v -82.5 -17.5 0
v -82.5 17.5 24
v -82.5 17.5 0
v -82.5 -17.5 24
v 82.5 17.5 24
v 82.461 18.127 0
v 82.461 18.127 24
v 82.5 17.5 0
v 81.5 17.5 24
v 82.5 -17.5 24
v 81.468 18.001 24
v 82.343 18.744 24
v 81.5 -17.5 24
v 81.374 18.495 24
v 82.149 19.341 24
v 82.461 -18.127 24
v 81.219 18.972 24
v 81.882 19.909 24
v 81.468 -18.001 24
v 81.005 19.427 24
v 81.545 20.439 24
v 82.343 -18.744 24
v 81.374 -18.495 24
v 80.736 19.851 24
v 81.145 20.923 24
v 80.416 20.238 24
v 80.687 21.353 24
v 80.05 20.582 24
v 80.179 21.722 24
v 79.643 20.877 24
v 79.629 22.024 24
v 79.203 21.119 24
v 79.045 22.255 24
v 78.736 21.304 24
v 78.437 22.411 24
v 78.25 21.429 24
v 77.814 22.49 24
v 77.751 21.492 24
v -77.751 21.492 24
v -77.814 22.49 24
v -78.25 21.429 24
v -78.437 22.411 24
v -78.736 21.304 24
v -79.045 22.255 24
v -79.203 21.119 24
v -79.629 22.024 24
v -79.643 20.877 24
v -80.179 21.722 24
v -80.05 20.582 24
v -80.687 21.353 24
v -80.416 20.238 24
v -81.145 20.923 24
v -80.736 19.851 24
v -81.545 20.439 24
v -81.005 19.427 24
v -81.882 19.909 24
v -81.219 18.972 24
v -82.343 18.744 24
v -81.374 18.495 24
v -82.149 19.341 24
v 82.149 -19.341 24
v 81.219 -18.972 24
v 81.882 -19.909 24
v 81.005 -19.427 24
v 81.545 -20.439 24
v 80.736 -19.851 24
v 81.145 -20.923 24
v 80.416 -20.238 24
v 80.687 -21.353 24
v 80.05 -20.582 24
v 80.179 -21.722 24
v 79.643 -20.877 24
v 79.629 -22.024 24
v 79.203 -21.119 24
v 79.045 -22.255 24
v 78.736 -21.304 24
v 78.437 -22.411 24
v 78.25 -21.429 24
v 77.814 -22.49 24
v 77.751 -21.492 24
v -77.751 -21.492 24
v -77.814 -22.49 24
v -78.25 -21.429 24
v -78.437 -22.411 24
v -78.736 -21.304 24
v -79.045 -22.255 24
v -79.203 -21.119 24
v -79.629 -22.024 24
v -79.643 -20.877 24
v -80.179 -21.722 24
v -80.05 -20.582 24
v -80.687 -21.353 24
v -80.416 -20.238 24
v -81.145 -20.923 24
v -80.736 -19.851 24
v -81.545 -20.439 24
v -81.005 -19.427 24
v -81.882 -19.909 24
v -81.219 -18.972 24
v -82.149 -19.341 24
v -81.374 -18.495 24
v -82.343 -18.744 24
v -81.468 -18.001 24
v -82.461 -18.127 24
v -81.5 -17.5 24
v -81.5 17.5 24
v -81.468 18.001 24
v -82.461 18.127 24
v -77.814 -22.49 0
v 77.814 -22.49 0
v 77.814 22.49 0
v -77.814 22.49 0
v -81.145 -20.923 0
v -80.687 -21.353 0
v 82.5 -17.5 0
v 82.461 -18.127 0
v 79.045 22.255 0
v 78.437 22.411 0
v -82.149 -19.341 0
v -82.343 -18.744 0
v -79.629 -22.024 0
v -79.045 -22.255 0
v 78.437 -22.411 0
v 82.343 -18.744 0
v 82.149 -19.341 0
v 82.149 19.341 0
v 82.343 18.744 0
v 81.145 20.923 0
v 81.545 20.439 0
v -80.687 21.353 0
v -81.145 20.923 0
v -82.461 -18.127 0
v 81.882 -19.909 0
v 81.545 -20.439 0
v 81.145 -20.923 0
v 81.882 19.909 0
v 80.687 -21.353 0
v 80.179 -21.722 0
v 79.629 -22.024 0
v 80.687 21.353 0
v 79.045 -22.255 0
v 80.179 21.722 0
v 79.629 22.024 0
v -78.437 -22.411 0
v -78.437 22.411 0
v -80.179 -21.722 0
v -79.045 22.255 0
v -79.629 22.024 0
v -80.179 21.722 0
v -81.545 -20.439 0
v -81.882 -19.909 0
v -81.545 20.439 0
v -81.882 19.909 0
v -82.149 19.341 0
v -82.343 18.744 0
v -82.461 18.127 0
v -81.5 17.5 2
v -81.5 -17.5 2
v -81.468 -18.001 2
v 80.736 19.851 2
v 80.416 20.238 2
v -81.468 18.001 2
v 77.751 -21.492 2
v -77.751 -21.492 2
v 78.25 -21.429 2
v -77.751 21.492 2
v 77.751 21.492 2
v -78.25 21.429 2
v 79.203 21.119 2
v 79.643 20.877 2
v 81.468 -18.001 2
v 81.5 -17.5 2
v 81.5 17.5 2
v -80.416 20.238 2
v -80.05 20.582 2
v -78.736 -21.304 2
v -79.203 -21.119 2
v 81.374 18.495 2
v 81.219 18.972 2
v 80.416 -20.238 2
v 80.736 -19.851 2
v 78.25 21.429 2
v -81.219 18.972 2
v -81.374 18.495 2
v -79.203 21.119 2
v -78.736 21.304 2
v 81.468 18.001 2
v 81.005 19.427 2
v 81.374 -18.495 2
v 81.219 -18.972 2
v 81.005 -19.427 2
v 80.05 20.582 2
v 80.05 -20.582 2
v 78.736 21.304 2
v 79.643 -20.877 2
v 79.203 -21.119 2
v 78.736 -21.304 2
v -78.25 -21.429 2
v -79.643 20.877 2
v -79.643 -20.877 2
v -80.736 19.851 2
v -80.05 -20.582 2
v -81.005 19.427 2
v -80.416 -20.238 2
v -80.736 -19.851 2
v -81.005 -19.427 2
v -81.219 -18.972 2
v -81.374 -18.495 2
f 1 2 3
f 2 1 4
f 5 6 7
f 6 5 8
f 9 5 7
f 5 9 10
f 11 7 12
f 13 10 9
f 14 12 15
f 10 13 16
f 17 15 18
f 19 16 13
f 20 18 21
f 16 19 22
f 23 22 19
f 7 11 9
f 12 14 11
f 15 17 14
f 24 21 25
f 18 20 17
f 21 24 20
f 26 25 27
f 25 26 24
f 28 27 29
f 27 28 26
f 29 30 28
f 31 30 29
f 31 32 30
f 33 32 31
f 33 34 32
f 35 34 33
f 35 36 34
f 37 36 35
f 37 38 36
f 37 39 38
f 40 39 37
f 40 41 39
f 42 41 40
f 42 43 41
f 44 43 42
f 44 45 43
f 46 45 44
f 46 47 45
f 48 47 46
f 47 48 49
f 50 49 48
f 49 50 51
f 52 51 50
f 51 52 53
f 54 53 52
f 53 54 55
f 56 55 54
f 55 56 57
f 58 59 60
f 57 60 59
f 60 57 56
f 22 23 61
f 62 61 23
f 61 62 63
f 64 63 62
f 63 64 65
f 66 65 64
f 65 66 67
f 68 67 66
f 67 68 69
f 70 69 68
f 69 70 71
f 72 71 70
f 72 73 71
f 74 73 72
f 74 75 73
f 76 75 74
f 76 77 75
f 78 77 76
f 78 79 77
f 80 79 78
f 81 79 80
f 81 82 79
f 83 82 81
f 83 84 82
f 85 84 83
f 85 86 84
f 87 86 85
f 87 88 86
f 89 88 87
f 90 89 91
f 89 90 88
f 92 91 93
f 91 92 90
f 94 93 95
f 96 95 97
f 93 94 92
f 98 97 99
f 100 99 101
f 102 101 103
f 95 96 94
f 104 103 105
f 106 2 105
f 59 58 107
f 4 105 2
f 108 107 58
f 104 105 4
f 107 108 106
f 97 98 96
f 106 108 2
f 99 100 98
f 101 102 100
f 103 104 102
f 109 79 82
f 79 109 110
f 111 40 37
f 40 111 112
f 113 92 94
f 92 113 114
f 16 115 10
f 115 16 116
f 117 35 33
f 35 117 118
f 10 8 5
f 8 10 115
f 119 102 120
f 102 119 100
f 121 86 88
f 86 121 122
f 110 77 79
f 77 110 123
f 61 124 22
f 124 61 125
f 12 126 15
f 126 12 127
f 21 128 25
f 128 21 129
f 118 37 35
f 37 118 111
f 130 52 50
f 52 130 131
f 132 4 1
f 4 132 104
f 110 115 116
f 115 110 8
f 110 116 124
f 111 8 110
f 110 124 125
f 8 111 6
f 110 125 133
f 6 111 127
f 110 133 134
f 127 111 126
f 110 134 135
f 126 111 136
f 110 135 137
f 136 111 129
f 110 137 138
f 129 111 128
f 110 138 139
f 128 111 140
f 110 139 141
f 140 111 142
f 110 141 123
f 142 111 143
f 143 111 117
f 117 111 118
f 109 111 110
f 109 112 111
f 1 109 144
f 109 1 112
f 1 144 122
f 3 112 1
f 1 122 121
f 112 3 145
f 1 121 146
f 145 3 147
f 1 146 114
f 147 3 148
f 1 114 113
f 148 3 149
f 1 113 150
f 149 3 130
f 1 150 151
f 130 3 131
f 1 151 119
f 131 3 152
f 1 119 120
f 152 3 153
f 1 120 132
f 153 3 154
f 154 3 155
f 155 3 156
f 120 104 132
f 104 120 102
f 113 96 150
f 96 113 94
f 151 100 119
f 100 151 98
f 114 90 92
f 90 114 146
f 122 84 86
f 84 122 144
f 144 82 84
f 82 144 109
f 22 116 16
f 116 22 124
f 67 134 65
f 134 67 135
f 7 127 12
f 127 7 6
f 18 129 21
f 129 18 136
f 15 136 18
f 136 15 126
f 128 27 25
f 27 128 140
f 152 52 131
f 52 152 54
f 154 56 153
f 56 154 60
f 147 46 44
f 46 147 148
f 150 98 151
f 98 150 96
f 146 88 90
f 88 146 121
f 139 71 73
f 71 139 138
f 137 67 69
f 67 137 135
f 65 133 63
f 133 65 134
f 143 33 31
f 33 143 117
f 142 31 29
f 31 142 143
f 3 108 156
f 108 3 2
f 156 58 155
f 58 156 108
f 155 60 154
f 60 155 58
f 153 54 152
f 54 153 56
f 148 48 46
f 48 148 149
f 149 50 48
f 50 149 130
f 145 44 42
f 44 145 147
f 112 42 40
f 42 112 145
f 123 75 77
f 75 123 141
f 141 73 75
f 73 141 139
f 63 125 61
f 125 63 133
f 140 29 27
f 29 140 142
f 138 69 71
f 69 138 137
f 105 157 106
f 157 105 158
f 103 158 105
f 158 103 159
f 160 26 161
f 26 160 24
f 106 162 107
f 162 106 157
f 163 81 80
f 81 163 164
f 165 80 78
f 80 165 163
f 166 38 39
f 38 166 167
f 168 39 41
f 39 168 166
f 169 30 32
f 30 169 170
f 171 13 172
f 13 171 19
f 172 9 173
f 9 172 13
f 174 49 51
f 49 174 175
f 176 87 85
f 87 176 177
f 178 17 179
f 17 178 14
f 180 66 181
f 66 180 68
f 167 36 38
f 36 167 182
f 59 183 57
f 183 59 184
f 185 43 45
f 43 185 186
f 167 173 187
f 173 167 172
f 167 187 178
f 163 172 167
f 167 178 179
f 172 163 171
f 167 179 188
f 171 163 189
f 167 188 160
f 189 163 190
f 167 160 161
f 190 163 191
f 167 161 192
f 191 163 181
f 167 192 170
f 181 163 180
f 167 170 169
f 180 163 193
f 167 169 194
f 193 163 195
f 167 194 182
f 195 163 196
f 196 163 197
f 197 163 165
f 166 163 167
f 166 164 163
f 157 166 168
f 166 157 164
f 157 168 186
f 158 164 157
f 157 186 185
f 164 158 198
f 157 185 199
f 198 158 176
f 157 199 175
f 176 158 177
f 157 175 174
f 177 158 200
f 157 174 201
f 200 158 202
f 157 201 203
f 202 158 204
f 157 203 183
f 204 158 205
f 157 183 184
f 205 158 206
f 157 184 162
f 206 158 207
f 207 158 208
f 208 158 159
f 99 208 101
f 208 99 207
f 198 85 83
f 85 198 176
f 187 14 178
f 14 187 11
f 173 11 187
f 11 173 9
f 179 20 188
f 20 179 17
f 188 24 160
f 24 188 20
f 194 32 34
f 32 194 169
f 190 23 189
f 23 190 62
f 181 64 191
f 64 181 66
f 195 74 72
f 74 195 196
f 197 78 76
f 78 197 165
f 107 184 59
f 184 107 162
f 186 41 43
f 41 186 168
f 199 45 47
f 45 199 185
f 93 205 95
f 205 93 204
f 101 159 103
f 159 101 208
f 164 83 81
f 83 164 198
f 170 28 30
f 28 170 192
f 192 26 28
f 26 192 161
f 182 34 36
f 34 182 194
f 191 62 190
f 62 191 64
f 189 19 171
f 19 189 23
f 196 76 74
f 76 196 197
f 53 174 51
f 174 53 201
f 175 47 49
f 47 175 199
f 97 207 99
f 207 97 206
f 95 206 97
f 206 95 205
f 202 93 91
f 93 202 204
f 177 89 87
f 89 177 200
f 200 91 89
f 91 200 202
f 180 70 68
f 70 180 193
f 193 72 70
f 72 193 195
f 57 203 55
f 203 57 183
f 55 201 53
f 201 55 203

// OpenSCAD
$fn = 50;


difference() {
	union() {
		hull() {
			translate(v = [-77.5000000000, 17.5000000000, 0]) {
				cylinder(h = 24, r = 5);
			}
			translate(v = [77.5000000000, 17.5000000000, 0]) {
				cylinder(h = 24, r = 5);
			}
			translate(v = [-77.5000000000, -17.5000000000, 0]) {
				cylinder(h = 24, r = 5);
			}
			translate(v = [77.5000000000, -17.5000000000, 0]) {
				cylinder(h = 24, r = 5);
			}
		}
	}
	union() {
		translate(v = [0, 0, 2]) {
			hull() {
				translate(v = [-77.5000000000, 17.5000000000, 0]) {
					cylinder(h = 22, r = 4);
				}
				translate(v = [77.5000000000, 17.5000000000, 0]) {
					cylinder(h = 22, r = 4);
				}
				translate(v = [-77.5000000000, -17.5000000000, 0]) {
					cylinder(h = 22, r = 4);
				}
				translate(v = [77.5000000000, -17.5000000000, 0]) {
					cylinder(h = 22, r = 4);
				}
			}
		}
	}
}
